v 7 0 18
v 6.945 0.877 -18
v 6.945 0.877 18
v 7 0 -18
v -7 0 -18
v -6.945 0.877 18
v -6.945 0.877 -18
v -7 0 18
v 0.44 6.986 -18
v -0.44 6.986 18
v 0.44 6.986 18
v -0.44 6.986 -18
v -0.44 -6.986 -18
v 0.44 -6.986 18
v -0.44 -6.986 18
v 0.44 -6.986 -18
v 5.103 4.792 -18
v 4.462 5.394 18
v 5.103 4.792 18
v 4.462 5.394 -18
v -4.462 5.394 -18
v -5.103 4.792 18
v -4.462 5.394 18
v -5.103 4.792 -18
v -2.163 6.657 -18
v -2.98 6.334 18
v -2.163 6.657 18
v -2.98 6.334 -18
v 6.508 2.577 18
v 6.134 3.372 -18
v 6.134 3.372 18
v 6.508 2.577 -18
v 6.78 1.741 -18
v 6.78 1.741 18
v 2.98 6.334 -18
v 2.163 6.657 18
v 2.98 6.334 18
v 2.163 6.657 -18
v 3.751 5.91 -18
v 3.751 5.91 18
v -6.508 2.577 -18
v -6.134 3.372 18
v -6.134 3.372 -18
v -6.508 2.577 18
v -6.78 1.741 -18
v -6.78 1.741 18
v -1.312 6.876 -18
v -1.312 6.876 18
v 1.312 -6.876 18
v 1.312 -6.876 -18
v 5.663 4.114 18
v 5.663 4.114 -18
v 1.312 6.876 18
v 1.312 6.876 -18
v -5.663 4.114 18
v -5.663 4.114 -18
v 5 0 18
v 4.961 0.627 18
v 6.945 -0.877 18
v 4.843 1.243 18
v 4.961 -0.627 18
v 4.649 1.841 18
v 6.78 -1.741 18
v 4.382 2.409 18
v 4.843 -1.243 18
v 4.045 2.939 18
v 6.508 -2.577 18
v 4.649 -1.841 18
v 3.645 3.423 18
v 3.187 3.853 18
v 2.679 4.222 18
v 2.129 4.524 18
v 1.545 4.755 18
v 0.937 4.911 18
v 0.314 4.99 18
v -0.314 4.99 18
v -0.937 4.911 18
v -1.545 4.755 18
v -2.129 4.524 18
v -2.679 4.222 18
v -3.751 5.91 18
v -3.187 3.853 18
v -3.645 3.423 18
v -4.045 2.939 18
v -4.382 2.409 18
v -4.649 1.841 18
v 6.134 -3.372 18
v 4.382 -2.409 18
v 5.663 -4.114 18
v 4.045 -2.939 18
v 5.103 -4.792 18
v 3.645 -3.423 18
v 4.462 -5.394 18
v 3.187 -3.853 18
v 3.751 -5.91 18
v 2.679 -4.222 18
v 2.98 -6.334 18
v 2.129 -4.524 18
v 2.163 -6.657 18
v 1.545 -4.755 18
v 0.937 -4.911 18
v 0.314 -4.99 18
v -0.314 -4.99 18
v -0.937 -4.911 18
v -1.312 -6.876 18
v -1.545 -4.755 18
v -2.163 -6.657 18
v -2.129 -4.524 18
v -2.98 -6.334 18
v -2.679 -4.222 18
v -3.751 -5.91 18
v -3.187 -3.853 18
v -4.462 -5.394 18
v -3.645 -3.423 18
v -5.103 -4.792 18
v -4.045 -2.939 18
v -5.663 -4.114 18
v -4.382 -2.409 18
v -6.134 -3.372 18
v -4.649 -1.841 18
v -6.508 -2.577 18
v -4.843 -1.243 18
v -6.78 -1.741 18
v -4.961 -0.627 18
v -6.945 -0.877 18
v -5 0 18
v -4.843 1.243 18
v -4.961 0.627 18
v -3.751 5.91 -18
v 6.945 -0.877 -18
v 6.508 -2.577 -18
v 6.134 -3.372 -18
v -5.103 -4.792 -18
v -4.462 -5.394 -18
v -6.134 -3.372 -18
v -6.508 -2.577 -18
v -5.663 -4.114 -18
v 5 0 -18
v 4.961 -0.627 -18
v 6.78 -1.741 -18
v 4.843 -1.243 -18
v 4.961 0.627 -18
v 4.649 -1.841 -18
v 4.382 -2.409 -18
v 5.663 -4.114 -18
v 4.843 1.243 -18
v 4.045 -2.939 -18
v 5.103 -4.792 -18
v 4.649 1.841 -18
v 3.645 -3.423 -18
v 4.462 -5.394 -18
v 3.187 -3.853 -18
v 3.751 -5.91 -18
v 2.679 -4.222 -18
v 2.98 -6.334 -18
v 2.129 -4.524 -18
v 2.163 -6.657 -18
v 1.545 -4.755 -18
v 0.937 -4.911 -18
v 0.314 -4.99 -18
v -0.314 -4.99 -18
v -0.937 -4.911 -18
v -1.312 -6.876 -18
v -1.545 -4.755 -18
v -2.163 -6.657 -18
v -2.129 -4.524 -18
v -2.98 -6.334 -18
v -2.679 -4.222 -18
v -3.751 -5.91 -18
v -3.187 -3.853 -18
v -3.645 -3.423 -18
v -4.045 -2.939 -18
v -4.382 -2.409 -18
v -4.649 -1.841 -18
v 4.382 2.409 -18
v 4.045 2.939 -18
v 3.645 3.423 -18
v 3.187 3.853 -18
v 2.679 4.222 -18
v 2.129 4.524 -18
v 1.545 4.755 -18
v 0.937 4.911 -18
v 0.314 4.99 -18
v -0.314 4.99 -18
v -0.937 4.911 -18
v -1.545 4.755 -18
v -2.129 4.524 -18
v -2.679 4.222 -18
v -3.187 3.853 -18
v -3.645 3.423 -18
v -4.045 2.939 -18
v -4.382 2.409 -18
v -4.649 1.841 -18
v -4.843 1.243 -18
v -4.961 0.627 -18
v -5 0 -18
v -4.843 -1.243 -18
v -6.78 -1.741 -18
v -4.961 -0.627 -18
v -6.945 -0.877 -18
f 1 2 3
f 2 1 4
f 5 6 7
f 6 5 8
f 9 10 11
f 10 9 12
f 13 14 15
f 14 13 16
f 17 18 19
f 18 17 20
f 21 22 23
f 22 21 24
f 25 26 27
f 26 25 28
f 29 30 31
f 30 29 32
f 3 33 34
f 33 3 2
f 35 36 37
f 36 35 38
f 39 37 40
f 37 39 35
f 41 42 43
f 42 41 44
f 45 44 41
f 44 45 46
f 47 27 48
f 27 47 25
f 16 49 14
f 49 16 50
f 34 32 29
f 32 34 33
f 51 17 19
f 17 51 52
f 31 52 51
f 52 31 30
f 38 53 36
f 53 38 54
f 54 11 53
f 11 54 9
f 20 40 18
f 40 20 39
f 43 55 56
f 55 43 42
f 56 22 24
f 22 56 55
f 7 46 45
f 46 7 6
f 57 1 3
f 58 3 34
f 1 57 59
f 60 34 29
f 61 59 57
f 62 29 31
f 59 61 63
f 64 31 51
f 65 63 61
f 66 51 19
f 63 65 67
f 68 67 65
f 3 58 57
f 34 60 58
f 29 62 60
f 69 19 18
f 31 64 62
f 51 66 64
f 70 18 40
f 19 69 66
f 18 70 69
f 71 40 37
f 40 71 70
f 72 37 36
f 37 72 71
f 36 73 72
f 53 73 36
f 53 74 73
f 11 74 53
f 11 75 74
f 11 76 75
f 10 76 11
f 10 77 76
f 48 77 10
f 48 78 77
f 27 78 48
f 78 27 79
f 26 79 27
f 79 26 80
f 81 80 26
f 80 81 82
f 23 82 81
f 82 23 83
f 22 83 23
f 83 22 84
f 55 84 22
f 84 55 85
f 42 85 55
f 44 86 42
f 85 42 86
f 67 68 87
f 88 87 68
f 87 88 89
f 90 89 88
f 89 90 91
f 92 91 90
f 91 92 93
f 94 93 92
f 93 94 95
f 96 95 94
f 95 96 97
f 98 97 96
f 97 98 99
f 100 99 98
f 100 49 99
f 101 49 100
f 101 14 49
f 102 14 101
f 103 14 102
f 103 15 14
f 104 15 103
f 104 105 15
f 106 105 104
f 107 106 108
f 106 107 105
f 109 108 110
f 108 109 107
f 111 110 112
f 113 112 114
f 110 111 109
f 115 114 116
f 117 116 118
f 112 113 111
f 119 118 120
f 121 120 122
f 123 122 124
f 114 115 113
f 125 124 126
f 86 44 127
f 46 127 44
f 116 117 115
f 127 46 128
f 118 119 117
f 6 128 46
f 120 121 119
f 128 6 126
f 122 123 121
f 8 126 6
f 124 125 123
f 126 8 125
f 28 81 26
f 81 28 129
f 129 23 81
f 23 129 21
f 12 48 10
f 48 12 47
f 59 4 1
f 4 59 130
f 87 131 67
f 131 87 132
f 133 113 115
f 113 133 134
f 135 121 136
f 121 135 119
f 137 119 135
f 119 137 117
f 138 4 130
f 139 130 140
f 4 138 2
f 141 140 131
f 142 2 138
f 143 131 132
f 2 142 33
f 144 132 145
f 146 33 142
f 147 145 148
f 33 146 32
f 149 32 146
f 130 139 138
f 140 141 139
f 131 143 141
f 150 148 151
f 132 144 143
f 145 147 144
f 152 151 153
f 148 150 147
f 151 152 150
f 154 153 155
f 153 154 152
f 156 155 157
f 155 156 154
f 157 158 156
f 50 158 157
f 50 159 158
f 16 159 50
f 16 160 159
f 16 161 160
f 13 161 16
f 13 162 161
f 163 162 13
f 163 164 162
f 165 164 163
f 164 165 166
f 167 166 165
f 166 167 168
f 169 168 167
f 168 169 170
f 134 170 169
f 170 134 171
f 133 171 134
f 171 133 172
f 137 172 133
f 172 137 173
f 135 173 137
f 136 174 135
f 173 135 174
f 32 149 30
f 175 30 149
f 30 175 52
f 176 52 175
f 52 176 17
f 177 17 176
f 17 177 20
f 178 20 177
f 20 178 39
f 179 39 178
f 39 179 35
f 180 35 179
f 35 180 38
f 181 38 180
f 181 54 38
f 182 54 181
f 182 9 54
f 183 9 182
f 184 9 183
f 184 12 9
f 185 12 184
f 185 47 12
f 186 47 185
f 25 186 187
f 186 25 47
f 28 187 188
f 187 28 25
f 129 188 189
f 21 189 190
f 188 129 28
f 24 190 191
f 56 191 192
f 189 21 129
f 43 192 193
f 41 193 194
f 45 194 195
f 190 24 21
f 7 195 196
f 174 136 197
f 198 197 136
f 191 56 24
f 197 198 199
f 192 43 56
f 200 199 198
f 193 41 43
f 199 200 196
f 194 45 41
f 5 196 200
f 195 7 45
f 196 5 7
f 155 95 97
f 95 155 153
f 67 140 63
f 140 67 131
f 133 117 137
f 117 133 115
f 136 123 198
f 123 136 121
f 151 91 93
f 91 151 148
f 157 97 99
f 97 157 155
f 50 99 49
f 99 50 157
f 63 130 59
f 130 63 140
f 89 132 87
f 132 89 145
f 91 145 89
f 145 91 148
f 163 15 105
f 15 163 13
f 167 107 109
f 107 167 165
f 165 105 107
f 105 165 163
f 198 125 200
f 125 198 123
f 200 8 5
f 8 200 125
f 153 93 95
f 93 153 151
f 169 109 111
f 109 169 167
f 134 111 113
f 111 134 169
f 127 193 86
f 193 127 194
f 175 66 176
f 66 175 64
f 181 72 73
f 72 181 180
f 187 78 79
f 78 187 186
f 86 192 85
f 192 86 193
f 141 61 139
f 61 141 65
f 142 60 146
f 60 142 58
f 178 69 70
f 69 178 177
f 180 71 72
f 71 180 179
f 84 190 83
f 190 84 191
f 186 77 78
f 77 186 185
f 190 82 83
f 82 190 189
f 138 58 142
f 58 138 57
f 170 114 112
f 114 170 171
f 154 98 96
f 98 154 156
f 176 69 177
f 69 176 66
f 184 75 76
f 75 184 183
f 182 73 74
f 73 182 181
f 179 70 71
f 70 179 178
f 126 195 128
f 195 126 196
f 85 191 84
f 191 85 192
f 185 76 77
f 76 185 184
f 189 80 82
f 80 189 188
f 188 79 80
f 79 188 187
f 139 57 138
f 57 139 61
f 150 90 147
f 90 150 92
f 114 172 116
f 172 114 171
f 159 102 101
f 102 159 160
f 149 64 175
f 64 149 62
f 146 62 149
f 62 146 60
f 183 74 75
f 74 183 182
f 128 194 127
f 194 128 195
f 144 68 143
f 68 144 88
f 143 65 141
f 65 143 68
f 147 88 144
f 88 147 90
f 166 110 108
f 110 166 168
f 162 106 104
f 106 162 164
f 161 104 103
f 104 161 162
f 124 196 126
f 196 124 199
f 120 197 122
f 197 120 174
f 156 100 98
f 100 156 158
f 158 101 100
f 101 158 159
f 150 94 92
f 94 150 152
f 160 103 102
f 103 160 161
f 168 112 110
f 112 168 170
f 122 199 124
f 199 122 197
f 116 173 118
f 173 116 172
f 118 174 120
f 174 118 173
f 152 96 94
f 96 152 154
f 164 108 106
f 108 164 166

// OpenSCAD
$fn = 50;


difference() {
	union() {
		translate(v = [0, 0, -18.0000000000]) {
			cylinder(h = 36, r = 7.0000000000);
		}
	}
	union() {
		translate(v = [0, 0, -100.0000000000]) {
			cylinder(h = 200, r = 5);
		}
	}
}
